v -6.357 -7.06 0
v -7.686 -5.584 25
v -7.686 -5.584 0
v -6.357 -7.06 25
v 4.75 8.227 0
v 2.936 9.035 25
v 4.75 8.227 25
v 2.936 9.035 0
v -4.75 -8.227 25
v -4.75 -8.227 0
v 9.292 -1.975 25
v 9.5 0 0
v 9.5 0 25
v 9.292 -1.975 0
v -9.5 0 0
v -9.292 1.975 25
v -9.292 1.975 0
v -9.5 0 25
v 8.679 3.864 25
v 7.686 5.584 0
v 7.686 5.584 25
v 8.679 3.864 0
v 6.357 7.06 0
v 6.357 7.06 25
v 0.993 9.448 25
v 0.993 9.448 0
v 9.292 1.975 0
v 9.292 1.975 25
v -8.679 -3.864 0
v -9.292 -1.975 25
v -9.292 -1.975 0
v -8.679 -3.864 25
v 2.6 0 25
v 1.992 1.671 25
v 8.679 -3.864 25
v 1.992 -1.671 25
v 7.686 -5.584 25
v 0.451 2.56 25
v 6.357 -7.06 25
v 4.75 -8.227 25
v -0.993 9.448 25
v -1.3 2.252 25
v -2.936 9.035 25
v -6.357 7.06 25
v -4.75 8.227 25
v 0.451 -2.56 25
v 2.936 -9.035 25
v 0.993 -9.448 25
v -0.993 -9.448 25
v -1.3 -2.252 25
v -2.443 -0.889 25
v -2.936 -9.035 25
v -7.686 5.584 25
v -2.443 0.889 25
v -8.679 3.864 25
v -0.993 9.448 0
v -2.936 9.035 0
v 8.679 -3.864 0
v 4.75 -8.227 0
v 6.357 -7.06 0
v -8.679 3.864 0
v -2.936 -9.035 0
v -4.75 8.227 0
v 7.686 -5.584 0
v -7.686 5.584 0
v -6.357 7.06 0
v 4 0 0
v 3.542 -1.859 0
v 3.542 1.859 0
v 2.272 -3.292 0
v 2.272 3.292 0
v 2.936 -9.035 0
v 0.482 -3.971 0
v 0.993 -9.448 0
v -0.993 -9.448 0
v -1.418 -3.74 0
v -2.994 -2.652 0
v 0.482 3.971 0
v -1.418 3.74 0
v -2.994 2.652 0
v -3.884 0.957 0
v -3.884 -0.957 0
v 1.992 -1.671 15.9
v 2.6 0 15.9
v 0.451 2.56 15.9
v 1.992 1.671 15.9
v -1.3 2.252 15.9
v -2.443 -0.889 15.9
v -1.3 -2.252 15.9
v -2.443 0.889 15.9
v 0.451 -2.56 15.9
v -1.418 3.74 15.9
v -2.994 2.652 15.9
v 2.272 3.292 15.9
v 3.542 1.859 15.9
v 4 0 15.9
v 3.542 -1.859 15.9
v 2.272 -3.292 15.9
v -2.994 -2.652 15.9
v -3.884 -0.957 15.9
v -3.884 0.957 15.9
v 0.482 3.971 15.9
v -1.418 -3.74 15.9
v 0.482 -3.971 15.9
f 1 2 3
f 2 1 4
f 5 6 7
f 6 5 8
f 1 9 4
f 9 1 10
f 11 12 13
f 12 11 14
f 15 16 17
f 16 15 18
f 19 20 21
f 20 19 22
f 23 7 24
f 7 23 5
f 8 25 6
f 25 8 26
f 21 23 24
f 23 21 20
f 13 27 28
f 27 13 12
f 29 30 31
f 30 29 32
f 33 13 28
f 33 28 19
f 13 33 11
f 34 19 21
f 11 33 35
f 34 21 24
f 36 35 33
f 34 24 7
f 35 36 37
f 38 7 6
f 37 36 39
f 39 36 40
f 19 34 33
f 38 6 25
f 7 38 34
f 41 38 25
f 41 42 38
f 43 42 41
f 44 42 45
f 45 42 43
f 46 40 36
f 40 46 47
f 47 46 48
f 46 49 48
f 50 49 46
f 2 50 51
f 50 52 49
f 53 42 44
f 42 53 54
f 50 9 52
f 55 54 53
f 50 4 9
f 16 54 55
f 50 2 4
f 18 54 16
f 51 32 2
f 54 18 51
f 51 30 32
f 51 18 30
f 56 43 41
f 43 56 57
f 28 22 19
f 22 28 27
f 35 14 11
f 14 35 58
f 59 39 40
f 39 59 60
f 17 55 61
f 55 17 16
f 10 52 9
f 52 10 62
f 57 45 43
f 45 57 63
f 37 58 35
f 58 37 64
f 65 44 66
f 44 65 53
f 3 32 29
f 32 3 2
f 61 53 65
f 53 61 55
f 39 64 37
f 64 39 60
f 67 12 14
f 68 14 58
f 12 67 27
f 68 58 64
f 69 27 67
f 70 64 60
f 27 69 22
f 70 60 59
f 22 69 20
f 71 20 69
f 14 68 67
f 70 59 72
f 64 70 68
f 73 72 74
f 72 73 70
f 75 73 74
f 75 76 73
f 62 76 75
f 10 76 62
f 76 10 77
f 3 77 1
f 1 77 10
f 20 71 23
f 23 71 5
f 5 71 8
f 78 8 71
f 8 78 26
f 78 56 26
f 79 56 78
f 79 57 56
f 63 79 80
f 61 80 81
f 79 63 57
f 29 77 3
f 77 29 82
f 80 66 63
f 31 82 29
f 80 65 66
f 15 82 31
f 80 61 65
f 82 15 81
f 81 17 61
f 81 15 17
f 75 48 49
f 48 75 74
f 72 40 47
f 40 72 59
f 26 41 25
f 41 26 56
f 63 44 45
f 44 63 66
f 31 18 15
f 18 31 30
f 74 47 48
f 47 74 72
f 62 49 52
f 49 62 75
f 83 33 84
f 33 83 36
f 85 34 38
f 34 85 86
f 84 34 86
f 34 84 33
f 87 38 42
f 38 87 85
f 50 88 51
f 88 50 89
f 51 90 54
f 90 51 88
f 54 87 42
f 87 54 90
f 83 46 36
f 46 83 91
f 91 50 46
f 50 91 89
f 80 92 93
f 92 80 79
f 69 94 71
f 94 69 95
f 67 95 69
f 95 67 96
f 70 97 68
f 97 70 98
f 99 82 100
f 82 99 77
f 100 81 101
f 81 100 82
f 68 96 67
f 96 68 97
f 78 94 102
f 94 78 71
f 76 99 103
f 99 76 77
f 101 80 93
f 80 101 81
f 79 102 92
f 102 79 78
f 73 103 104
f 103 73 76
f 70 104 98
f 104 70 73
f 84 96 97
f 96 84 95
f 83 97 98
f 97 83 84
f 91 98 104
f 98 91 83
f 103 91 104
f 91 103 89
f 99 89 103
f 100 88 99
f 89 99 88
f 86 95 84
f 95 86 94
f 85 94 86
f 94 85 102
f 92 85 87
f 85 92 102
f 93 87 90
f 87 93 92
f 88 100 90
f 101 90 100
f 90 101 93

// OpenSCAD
difference(){
    cylinder(r=19/2, h=25);
    cylinder(r=5.2/2, h=26);
    translate([0,0,-.1])
    cylinder(r=8/2, h=16);
}
